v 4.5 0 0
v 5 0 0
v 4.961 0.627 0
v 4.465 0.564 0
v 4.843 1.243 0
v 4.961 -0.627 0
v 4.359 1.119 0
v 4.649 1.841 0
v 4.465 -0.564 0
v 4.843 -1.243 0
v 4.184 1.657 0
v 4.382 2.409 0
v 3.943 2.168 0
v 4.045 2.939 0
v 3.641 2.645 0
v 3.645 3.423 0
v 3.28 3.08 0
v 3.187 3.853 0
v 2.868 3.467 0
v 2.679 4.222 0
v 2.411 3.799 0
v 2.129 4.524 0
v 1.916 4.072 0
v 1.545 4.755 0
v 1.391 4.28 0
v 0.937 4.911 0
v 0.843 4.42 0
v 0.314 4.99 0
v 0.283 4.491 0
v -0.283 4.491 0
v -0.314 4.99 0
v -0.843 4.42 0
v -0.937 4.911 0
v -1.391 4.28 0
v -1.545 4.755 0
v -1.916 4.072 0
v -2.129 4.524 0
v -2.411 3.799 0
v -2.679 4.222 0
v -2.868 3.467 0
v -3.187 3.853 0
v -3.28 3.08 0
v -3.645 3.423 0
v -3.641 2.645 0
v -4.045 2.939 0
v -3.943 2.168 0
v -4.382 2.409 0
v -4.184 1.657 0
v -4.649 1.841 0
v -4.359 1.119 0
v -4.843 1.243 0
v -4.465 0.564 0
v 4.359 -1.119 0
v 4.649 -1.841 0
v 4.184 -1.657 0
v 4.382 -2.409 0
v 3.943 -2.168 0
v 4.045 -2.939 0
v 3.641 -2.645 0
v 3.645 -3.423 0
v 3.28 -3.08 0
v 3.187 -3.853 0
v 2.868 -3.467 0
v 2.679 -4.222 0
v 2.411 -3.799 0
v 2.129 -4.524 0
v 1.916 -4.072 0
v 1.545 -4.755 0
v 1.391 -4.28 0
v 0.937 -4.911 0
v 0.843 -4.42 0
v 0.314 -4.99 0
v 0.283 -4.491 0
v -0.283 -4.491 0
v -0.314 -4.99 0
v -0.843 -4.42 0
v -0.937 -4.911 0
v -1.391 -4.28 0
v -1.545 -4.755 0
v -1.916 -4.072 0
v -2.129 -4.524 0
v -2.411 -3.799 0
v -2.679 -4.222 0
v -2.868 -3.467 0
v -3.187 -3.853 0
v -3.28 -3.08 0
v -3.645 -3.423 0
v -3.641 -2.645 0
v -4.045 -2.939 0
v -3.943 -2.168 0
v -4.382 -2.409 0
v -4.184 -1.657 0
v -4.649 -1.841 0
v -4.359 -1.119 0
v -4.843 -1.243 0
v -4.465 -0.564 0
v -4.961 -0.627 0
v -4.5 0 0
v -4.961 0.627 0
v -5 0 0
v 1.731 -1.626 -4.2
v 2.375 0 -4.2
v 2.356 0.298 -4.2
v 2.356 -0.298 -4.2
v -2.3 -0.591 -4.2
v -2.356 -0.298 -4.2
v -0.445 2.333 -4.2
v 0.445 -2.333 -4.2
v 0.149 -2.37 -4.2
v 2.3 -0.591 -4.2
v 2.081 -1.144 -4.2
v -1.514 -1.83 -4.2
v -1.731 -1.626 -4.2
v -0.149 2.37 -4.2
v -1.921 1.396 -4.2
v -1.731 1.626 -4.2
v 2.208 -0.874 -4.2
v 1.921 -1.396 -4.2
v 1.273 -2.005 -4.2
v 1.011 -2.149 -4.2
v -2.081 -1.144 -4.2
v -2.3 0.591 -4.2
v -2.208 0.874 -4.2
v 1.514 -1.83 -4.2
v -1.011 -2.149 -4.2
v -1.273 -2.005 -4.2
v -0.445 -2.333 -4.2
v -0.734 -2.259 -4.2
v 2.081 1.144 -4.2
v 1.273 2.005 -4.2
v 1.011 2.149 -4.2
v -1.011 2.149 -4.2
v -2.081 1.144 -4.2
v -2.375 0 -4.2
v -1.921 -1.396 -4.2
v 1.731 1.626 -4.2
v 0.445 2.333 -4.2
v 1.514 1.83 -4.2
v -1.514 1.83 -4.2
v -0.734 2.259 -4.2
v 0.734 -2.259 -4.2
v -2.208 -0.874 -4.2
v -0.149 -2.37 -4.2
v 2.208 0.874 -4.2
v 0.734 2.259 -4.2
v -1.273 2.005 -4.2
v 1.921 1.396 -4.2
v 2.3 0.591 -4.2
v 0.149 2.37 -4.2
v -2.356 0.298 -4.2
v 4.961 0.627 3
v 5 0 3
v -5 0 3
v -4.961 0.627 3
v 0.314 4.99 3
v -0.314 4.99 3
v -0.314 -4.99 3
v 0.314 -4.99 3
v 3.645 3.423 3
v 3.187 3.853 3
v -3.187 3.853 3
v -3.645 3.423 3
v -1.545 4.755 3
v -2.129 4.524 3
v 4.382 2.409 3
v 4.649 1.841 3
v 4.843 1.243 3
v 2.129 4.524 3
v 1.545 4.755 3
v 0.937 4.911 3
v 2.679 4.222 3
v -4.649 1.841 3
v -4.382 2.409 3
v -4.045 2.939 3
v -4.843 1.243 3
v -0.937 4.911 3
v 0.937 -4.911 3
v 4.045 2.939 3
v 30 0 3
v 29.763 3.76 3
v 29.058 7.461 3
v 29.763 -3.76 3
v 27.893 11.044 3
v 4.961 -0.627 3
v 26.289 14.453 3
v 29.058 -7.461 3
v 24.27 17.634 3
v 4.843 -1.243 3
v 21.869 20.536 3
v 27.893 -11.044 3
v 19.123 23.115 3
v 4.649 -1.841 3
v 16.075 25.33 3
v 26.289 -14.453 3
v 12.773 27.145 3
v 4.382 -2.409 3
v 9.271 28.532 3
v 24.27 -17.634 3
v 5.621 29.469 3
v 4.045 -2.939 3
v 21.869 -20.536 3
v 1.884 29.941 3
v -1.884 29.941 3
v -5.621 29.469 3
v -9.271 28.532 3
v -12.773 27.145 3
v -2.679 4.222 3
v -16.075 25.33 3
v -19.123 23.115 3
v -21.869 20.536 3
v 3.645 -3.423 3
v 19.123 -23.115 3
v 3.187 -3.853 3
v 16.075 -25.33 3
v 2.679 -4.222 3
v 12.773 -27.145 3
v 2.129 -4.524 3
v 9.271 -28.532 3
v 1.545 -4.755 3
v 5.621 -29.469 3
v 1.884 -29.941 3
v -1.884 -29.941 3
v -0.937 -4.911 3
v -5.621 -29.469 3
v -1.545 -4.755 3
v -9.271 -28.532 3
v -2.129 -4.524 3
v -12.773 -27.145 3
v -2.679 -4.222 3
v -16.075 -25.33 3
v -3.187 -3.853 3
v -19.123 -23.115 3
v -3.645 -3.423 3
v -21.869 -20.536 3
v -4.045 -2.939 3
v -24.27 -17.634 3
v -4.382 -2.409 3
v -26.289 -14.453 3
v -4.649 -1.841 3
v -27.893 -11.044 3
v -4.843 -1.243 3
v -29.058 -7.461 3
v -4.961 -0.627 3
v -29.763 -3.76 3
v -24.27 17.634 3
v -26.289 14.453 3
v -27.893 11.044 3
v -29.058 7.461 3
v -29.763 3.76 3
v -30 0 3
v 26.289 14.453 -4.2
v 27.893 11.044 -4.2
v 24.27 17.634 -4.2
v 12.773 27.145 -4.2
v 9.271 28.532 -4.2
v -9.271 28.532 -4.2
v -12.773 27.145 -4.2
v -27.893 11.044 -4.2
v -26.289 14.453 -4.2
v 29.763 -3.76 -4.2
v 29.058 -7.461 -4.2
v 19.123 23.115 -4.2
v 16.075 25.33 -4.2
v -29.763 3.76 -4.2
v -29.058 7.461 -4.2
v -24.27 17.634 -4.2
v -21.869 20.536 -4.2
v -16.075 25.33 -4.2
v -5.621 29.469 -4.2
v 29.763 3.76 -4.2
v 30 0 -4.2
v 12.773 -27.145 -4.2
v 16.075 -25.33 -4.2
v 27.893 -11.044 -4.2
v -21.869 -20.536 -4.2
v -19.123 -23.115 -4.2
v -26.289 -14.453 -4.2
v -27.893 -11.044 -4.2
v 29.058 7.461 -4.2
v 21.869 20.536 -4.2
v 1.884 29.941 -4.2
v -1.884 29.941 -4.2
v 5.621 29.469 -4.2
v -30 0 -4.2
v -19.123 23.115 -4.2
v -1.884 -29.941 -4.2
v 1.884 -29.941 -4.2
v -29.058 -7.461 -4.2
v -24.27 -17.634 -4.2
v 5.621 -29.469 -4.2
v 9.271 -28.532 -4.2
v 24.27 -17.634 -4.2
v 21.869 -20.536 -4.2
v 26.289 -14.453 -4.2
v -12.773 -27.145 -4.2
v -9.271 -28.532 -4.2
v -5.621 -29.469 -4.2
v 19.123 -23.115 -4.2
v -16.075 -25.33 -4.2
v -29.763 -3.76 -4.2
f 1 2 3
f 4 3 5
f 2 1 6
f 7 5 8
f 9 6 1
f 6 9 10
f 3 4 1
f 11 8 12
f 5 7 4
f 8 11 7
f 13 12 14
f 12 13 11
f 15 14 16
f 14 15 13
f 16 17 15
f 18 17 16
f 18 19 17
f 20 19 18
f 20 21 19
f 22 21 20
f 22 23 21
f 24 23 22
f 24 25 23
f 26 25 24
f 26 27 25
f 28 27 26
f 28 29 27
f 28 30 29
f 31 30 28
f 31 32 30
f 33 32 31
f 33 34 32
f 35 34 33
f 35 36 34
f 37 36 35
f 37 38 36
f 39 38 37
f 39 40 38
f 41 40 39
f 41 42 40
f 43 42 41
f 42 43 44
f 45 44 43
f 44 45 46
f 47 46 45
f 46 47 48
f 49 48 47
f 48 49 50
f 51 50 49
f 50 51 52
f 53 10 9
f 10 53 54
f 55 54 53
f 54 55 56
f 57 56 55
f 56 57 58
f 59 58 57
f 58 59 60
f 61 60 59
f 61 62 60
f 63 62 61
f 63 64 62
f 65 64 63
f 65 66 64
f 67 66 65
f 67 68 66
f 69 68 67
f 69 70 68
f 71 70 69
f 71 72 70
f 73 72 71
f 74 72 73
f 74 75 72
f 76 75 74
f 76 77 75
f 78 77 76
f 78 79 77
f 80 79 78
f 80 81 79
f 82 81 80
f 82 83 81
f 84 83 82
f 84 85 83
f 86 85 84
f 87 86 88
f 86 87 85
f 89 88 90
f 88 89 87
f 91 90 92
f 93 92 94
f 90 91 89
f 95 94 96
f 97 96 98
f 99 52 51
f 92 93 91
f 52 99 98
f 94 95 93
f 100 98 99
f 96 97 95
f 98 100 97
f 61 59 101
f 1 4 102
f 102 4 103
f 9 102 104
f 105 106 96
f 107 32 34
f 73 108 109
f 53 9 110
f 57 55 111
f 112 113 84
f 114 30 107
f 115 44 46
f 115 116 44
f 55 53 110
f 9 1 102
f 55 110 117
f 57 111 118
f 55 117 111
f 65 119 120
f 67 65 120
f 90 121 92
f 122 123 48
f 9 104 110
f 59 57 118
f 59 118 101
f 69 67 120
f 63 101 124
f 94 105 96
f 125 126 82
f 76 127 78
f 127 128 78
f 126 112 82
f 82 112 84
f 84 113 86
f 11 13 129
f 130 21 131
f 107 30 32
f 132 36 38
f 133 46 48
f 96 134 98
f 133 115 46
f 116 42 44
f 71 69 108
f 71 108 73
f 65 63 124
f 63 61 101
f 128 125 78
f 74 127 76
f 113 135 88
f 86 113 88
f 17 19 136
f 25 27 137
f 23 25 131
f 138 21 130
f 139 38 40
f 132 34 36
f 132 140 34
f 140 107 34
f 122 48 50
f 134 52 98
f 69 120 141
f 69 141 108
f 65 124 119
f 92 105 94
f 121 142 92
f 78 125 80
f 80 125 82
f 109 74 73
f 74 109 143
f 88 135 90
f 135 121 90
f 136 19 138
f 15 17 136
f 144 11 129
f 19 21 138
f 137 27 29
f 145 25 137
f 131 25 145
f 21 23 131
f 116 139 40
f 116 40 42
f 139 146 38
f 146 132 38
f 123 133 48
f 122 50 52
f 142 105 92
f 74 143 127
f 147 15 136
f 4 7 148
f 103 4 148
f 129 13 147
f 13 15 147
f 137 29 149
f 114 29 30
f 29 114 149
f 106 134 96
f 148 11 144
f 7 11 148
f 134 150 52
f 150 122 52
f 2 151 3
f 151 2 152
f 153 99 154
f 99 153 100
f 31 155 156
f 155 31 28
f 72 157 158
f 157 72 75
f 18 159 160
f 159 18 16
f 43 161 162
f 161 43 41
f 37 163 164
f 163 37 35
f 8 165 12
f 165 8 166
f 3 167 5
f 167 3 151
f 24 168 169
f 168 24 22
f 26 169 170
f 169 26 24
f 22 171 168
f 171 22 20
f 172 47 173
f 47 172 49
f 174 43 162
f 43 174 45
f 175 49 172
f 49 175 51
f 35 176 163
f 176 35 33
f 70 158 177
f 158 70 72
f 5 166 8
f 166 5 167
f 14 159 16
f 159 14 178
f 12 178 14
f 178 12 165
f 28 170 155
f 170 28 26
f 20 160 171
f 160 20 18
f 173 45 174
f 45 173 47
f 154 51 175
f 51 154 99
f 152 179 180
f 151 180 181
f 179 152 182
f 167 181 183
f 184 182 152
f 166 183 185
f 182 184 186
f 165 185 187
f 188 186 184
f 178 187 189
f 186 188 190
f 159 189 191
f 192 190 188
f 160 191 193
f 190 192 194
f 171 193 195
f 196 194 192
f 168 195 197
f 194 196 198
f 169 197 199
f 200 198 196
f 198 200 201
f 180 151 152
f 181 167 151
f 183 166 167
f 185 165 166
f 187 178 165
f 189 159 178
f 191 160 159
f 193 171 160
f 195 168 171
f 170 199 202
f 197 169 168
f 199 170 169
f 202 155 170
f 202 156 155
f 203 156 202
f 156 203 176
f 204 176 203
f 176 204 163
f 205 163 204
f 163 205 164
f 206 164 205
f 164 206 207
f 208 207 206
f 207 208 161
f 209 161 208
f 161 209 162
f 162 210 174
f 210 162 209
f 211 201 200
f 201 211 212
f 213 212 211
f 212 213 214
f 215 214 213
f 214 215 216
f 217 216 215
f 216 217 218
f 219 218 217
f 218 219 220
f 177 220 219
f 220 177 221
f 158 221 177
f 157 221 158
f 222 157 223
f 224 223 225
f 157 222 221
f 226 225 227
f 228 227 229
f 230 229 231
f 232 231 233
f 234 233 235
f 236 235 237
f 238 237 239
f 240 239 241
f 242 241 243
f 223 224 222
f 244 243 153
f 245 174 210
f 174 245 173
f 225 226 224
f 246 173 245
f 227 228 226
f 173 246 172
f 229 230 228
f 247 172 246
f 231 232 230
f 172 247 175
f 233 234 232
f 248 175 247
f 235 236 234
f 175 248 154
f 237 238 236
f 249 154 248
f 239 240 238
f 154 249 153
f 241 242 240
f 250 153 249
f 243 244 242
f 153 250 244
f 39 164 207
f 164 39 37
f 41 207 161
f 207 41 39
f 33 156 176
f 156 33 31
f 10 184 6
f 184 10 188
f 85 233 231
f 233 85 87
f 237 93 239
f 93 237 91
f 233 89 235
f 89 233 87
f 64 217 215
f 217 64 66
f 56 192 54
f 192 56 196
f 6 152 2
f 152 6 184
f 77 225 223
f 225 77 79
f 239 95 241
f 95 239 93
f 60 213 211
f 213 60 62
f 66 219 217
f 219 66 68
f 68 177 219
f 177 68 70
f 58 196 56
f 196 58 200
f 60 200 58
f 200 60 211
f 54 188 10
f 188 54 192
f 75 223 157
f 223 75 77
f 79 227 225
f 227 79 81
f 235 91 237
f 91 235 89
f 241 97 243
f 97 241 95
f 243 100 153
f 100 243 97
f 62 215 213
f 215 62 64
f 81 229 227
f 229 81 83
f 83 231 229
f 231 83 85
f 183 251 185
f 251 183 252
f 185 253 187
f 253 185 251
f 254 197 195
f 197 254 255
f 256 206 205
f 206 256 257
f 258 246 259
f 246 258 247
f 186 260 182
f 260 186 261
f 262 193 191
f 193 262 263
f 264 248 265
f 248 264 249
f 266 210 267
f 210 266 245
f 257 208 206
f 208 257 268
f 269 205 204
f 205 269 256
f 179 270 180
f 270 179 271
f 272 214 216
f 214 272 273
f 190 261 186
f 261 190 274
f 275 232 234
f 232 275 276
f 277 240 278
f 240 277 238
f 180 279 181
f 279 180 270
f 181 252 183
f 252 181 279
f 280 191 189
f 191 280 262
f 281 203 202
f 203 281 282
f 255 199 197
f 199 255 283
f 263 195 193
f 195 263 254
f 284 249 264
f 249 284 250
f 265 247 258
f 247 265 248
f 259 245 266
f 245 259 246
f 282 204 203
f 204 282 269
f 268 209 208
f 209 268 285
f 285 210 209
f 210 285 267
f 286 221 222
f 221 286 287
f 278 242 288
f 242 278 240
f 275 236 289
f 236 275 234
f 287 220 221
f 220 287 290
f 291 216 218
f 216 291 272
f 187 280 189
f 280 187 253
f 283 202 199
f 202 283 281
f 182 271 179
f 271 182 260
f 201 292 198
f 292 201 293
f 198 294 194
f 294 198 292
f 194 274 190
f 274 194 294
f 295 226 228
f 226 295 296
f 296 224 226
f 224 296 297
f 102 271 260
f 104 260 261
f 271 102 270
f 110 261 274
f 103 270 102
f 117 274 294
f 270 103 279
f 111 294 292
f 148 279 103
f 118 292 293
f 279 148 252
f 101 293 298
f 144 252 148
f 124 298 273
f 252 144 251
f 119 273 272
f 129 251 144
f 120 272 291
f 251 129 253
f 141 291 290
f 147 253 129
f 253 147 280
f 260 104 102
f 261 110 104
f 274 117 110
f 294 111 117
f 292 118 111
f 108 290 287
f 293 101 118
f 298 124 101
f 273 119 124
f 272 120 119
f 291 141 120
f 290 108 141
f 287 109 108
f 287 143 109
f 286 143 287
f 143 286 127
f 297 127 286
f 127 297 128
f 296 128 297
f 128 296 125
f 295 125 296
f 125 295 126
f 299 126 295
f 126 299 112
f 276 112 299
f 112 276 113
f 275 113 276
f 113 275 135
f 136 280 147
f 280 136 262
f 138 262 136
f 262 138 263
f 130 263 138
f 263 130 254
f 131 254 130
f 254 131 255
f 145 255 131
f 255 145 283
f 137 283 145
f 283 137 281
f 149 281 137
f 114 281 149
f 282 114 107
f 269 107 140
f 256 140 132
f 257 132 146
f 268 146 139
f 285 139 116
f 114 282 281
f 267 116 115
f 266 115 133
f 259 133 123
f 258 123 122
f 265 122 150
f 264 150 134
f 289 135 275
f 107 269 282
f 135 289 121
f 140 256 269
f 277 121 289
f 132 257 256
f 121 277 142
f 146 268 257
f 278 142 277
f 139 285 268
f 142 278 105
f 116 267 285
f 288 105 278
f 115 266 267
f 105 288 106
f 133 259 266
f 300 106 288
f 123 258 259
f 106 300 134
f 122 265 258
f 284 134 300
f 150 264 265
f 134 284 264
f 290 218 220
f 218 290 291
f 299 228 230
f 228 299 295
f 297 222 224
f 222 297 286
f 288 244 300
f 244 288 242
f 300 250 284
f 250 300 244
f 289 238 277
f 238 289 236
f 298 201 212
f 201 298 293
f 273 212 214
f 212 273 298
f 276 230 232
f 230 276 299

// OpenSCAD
$fn = 50;

difference() {
	union() {
		translate(v = [0, 0, -4.2]) {
			cylinder(h = 7.2, r = 30.0);
		}
	}
	union() {
		translate(v = [0, 0, 0]) {
			rotate(a = [0, 0, 0]) {
				difference() {
					union() {
						translate(v = [0, 0, -7.2]) {
							cylinder(h = 7.2, r = 2.25);
						}
						translate(v = [0, 0, -4.2]) {
							cylinder(h = 4.2, r1 = 2.375, r2 = 4.5);
						}
						translate(v = [0, 0, -7.2]) {
							cylinder(h = 7.2, r = 2.375);
						}
						translate(v = [0, 0, -7.2]) {
							cylinder(h = 7.2, r = 2.25);
						}
					}
					union();
				}
			}
		}
		#cylinder(h = 3, r = 5.0);
	}
}
